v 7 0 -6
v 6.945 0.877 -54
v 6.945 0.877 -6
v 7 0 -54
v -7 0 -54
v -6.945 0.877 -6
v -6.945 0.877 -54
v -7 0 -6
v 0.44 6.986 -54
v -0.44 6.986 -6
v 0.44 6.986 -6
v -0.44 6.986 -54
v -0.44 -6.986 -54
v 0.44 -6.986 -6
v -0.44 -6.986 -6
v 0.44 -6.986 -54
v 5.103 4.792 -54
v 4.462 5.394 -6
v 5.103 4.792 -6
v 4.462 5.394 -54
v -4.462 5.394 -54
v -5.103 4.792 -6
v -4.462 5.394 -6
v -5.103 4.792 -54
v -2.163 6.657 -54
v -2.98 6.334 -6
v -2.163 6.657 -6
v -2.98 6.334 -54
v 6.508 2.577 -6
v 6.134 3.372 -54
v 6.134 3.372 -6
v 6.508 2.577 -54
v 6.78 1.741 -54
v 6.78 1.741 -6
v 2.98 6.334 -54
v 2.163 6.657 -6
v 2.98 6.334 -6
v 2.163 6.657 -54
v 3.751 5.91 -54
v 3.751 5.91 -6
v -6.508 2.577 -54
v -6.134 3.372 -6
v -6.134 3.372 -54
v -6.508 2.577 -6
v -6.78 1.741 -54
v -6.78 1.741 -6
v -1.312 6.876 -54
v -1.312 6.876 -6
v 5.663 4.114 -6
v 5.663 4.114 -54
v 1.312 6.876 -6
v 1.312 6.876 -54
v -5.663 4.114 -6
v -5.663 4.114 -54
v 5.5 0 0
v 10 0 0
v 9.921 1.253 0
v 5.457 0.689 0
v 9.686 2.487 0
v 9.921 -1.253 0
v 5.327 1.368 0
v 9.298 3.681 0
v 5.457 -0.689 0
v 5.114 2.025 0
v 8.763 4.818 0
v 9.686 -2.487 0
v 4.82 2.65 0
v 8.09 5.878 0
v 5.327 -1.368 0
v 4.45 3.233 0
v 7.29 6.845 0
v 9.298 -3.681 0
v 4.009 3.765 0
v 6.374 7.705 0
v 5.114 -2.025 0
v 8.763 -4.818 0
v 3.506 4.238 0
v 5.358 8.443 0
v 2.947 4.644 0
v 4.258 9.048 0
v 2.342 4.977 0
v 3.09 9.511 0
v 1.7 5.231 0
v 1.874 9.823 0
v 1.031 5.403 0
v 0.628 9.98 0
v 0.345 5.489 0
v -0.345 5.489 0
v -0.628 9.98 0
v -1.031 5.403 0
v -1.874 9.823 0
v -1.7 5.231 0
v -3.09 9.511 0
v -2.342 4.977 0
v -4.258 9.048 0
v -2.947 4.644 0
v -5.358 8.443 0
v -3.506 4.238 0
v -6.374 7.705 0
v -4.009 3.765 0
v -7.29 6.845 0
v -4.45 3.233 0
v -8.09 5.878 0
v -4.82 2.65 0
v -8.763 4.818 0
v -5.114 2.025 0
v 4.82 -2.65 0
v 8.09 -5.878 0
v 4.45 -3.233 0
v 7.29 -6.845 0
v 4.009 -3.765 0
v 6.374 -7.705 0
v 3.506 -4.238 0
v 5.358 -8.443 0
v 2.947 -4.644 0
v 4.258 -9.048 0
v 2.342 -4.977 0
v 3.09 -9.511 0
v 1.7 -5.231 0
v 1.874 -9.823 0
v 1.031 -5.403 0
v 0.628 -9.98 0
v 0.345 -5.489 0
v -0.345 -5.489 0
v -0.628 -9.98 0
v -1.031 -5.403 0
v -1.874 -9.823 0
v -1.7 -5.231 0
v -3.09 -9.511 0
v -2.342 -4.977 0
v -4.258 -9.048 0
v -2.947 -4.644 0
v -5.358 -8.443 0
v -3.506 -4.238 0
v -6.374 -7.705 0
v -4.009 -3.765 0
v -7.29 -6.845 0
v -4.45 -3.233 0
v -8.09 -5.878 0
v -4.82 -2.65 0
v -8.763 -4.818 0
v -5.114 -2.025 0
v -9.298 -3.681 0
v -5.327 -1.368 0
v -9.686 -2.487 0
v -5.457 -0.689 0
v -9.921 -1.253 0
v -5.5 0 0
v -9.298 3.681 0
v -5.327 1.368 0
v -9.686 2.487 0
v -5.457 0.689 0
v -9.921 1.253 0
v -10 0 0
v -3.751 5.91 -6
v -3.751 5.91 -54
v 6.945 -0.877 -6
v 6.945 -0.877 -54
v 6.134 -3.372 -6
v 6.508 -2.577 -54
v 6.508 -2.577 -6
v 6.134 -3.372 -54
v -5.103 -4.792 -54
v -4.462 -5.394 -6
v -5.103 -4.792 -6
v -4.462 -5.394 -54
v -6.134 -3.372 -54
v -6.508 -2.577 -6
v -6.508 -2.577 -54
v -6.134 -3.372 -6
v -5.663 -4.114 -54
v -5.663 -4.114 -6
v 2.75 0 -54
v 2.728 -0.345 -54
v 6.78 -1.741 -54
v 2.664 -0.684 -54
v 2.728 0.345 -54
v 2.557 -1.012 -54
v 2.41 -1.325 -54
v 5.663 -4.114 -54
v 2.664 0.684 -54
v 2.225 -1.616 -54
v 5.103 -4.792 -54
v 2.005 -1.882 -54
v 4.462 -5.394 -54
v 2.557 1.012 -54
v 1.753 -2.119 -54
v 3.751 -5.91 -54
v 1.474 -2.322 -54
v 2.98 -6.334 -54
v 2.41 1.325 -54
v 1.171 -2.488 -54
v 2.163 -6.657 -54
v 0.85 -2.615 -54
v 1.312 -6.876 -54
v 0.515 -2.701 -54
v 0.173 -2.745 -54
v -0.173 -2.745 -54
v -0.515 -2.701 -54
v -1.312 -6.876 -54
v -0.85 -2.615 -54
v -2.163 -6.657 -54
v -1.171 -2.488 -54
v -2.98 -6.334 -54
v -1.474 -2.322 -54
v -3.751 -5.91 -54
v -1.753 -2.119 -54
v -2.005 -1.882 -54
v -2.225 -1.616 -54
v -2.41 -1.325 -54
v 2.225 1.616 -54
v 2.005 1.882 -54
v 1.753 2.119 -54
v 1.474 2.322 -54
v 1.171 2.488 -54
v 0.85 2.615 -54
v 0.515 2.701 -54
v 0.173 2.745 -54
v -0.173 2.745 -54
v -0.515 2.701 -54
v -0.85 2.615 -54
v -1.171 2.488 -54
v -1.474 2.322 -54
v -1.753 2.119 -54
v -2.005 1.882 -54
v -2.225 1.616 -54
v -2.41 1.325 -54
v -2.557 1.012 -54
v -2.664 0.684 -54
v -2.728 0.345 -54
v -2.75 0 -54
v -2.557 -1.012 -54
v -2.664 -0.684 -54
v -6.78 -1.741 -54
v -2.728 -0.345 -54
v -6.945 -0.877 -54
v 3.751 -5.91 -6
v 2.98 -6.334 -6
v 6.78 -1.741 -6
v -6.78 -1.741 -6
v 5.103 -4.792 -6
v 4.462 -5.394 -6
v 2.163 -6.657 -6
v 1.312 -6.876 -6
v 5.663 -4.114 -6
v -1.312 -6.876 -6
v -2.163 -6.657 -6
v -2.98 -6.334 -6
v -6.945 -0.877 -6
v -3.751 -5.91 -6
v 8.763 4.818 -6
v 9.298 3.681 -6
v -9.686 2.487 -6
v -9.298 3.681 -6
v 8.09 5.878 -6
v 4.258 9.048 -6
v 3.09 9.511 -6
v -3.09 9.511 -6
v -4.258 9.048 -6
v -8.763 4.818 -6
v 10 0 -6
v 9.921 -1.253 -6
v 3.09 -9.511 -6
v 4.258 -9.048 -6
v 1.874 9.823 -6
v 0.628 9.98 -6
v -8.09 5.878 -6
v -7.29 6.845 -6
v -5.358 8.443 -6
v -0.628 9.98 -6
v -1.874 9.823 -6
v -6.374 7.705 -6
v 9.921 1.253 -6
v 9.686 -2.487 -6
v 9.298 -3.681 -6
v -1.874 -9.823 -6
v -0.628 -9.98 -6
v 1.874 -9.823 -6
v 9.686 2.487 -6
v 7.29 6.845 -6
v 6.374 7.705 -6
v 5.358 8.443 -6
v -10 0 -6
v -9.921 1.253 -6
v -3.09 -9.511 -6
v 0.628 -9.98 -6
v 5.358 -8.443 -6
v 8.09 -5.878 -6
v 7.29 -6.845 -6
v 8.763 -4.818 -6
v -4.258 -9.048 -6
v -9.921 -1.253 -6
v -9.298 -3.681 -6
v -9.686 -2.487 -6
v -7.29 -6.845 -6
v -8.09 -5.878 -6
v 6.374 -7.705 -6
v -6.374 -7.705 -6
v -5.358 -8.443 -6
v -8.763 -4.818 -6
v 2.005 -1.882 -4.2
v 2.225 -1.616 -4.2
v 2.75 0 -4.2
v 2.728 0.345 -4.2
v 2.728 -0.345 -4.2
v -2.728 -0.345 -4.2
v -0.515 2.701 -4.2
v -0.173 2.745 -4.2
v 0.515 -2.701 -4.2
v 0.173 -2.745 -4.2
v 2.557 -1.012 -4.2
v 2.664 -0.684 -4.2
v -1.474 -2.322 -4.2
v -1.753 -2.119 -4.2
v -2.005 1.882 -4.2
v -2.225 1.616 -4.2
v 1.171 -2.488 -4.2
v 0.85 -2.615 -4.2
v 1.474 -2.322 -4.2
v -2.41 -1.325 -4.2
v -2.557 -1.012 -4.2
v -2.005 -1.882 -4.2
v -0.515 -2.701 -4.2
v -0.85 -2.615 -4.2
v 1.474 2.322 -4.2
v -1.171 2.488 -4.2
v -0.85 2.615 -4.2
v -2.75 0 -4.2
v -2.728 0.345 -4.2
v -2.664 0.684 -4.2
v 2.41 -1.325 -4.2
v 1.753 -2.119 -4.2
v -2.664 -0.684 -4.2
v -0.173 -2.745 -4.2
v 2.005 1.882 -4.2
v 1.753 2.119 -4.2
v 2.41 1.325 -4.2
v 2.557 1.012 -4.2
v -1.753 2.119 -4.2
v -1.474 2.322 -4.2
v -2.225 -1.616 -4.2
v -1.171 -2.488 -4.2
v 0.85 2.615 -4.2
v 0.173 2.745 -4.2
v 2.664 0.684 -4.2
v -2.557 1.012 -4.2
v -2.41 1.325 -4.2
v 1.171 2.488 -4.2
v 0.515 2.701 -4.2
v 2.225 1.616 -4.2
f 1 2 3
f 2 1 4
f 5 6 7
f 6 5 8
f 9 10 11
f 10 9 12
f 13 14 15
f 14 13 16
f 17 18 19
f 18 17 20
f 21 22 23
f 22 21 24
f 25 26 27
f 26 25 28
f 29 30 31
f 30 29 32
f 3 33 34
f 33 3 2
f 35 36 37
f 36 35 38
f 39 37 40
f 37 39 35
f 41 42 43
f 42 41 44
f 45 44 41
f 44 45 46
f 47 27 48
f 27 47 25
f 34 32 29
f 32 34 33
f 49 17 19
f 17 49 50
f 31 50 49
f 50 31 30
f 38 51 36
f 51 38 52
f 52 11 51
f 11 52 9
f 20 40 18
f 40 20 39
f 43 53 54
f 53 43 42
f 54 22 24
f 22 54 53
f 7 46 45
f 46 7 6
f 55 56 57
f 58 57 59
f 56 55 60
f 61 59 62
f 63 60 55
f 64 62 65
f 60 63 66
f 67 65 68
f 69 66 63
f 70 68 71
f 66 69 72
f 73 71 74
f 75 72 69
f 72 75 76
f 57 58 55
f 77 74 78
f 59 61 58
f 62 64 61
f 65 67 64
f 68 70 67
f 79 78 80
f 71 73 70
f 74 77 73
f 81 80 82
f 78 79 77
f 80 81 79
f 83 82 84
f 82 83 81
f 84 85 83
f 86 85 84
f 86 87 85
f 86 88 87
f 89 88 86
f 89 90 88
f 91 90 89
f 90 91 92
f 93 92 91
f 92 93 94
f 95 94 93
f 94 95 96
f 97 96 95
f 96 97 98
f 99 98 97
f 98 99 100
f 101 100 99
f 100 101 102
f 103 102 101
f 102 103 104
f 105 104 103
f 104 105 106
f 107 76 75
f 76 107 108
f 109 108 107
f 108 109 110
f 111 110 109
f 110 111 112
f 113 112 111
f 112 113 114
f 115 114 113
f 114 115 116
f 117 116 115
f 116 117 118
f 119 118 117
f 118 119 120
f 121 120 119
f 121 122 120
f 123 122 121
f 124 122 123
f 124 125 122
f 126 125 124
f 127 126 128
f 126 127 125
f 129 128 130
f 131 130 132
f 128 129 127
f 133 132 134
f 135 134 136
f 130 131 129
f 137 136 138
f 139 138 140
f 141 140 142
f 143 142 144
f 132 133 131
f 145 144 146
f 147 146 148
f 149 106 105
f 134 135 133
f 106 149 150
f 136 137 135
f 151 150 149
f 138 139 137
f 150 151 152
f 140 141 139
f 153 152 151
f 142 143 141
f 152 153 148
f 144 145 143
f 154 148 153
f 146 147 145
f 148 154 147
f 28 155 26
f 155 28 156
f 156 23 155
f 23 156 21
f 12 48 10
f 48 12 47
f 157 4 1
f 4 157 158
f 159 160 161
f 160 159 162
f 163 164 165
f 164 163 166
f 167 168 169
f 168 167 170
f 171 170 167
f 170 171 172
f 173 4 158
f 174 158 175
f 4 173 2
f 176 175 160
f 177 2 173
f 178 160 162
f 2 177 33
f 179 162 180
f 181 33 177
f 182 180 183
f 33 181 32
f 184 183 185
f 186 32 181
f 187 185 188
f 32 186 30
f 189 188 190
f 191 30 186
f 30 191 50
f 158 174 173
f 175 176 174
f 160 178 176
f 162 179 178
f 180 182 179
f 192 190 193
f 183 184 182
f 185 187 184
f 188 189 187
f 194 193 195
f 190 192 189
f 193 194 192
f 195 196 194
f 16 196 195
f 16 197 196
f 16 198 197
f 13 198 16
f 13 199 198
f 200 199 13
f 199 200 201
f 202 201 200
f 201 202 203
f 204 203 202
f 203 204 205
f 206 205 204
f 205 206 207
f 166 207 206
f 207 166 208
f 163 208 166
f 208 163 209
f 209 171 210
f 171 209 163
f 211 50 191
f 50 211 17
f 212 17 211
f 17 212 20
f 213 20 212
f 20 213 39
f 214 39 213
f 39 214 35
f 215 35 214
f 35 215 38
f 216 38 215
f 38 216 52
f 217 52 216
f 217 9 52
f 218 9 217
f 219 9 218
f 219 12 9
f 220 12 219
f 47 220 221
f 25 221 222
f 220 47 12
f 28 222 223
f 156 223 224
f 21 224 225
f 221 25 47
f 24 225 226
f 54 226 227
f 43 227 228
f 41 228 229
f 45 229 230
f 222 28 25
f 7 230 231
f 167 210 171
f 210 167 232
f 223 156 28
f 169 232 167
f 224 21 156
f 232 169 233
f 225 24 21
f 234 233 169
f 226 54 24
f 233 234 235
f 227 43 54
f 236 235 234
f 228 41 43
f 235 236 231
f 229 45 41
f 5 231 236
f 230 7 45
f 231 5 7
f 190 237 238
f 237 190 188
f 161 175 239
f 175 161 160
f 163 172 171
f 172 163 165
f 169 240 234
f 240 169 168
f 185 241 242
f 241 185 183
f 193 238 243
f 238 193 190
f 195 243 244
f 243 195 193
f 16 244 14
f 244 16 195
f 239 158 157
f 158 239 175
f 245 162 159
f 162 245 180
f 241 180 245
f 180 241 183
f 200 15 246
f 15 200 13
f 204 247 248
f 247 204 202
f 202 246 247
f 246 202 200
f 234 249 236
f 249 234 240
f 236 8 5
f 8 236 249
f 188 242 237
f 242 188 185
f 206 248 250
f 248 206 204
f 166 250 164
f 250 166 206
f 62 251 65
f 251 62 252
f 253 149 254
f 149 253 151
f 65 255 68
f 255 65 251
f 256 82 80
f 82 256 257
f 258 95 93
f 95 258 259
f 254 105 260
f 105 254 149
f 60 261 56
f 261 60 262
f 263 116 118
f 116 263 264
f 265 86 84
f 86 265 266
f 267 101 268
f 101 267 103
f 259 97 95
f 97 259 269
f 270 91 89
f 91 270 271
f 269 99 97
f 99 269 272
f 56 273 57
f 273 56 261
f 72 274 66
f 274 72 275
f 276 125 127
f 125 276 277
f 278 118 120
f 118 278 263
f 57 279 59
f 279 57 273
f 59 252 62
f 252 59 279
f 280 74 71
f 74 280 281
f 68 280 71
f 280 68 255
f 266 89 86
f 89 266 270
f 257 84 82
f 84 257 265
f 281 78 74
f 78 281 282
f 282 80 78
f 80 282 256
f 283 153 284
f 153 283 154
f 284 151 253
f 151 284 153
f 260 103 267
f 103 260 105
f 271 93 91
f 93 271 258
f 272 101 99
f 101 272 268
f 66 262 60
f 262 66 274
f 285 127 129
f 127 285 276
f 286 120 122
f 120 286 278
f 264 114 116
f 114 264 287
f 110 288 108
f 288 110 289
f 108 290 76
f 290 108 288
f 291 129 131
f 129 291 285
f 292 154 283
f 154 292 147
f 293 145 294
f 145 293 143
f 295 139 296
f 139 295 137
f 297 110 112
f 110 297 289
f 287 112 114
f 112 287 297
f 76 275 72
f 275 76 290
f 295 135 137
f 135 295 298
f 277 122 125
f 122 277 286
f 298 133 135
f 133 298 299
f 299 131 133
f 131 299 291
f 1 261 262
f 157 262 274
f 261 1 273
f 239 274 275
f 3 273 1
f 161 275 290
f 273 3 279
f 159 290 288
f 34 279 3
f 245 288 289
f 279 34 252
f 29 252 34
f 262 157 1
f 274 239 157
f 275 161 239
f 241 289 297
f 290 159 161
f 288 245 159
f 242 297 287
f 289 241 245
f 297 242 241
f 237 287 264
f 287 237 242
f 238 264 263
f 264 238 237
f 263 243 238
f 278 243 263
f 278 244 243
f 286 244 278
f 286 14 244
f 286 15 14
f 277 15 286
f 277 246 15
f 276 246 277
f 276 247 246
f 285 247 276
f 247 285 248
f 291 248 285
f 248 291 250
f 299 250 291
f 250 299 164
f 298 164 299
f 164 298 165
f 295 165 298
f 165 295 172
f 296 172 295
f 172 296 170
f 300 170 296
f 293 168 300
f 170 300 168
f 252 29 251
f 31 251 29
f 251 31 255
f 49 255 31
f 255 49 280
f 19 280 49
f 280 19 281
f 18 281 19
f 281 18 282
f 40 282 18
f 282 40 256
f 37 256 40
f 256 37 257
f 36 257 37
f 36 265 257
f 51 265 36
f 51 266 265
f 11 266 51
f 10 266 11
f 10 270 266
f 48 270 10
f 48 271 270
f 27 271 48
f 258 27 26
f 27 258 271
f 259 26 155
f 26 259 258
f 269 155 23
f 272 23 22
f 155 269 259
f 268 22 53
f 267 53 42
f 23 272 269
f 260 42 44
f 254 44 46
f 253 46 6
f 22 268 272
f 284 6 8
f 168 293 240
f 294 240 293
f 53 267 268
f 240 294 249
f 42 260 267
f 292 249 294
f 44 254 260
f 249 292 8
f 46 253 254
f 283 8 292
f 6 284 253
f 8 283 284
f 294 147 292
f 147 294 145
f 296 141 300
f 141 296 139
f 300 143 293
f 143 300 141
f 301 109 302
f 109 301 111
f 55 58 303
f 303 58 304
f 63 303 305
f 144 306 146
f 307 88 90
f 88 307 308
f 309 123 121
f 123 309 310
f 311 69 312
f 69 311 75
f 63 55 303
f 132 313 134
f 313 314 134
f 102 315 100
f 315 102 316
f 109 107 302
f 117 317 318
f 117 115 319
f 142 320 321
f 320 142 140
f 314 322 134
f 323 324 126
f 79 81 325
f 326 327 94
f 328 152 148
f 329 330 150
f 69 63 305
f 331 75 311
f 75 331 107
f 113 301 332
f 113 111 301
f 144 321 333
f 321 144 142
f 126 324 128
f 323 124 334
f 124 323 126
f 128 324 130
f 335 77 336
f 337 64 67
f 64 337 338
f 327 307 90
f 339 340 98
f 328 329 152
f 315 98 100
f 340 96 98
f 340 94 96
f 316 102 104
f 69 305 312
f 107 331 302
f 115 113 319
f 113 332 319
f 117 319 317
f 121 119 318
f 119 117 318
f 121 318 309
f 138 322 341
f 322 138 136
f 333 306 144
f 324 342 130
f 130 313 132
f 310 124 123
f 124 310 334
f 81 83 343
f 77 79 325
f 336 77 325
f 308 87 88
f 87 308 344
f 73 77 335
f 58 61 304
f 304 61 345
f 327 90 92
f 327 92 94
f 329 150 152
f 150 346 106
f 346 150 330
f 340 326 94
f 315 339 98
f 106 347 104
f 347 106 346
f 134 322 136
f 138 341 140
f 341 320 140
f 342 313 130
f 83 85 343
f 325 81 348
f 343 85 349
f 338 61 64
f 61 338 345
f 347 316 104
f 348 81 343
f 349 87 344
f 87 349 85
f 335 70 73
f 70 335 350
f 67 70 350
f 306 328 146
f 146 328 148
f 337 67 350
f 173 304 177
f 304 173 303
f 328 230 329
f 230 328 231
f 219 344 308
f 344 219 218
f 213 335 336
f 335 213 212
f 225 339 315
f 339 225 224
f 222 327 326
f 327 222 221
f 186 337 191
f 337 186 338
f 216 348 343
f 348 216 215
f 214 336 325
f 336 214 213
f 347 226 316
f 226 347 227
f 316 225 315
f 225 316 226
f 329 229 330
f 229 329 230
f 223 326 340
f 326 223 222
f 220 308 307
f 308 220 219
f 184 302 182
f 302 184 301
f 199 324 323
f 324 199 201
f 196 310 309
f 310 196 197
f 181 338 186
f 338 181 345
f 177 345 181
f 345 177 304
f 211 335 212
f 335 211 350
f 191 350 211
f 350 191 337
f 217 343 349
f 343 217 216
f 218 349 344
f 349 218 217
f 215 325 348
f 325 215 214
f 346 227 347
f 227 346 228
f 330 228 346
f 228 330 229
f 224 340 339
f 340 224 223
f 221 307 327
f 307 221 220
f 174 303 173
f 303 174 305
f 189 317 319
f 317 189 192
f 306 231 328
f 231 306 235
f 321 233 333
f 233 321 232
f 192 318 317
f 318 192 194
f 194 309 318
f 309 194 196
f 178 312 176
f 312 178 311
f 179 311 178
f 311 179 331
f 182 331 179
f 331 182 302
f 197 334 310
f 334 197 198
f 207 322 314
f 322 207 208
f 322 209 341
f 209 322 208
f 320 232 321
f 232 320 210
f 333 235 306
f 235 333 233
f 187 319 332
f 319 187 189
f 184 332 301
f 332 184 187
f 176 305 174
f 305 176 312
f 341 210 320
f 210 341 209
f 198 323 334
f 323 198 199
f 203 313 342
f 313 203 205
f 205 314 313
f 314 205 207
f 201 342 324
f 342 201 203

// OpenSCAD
$fn = 50;


difference() {
	union() {
		translate(v = [0, 0, -54.0000000000]) {
			cylinder(h = 54, r = 7.0000000000);
		}
		translate(v = [0, 0, -6.0000000000]) {
			cylinder(h = 6, r = 10.0000000000);
		}
	}
	union() {
		translate(v = [0, 0, 0]) {
			rotate(a = [0, 0, 0]) {
				difference() {
					union() {
						#translate(v = [0, 0, -54.0000000000]) {
							cylinder(h = 54, r = 2.2500000000);
						}
						#translate(v = [0, 0, -4.2000000000]) {
							cylinder(h = 4.2000000000, r1 = 2.7500000000, r2 = 5.5000000000);
						}
						#translate(v = [0, 0, -54.0000000000]) {
							cylinder(h = 54, r = 2.7500000000);
						}
						#translate(v = [0, 0, -54.0000000000]) {
							cylinder(h = 54, r = 2.2500000000);
						}
					}
					union();
				}
			}
		}
	}
}
